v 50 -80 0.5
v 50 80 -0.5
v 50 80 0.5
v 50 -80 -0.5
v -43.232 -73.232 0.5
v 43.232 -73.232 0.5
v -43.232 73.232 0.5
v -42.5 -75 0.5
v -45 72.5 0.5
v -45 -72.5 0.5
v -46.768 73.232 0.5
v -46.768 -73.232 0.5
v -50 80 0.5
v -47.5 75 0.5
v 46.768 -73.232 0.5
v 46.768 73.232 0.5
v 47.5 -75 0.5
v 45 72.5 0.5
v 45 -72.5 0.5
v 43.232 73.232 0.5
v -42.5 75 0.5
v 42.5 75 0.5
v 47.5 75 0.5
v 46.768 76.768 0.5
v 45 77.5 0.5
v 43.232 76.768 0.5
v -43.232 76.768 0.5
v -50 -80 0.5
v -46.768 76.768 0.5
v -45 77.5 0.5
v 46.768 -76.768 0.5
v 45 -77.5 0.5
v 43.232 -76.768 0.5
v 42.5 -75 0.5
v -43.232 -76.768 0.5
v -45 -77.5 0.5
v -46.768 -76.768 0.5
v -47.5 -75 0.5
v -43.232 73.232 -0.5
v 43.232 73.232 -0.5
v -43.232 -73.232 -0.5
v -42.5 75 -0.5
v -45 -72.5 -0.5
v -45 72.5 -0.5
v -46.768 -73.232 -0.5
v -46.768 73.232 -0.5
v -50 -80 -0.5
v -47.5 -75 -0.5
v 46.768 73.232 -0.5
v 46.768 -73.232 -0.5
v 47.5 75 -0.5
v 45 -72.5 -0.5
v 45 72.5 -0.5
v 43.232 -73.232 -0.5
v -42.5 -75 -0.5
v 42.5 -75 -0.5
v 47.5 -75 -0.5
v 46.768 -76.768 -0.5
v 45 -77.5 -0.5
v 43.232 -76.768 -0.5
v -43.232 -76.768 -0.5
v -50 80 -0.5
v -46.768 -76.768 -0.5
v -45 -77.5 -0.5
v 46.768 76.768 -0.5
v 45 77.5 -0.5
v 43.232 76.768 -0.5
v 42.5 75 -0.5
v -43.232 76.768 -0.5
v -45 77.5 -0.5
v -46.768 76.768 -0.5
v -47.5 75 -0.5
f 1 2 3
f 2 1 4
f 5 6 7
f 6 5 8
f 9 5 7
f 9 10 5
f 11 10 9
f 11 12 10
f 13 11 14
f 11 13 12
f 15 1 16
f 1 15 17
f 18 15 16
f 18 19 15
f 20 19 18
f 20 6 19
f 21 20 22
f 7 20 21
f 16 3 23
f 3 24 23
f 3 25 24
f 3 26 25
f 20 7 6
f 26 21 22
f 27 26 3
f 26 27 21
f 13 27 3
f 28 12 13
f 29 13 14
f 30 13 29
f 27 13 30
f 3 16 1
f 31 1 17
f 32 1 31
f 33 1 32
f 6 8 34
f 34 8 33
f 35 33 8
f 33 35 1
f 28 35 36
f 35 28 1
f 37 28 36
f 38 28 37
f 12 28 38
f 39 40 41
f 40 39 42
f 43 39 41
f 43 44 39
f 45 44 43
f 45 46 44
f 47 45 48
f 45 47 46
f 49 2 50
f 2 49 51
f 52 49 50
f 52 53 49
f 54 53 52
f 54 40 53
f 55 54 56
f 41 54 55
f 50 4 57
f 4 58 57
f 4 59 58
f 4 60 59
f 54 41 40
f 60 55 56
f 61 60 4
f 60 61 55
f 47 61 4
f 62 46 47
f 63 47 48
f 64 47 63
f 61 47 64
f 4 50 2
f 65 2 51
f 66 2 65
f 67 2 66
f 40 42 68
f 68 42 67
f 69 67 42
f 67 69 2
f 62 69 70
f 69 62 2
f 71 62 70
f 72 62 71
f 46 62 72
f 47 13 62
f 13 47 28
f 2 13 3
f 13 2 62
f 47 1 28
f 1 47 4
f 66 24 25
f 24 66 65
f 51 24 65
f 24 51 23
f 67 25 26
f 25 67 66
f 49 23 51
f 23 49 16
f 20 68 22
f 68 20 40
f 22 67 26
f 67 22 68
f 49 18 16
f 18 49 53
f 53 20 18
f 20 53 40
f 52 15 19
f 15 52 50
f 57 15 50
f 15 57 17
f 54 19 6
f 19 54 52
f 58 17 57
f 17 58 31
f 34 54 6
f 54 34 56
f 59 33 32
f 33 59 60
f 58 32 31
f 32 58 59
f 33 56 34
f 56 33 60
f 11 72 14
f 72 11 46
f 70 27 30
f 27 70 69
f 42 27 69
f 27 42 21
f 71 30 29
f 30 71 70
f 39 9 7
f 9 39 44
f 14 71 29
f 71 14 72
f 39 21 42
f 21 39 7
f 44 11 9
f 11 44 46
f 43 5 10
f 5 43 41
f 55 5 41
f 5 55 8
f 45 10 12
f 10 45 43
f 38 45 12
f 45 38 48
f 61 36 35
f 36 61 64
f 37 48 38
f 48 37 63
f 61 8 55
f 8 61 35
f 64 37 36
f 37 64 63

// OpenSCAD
difference(){
cube([100,160,1],center=true);
translate([100/2-5,160/2-5,-20])
cylinder(d=5,h=52);
translate([100/2-5,-(160/2-5),-20])
cylinder(d=5,h=52);
translate([-(100/2-5),160/2-5,-20])
cylinder(d=5,h=52);
translate([-(100/2-5),-(160/2-5),-20])
cylinder(d=5,h=52);
}
